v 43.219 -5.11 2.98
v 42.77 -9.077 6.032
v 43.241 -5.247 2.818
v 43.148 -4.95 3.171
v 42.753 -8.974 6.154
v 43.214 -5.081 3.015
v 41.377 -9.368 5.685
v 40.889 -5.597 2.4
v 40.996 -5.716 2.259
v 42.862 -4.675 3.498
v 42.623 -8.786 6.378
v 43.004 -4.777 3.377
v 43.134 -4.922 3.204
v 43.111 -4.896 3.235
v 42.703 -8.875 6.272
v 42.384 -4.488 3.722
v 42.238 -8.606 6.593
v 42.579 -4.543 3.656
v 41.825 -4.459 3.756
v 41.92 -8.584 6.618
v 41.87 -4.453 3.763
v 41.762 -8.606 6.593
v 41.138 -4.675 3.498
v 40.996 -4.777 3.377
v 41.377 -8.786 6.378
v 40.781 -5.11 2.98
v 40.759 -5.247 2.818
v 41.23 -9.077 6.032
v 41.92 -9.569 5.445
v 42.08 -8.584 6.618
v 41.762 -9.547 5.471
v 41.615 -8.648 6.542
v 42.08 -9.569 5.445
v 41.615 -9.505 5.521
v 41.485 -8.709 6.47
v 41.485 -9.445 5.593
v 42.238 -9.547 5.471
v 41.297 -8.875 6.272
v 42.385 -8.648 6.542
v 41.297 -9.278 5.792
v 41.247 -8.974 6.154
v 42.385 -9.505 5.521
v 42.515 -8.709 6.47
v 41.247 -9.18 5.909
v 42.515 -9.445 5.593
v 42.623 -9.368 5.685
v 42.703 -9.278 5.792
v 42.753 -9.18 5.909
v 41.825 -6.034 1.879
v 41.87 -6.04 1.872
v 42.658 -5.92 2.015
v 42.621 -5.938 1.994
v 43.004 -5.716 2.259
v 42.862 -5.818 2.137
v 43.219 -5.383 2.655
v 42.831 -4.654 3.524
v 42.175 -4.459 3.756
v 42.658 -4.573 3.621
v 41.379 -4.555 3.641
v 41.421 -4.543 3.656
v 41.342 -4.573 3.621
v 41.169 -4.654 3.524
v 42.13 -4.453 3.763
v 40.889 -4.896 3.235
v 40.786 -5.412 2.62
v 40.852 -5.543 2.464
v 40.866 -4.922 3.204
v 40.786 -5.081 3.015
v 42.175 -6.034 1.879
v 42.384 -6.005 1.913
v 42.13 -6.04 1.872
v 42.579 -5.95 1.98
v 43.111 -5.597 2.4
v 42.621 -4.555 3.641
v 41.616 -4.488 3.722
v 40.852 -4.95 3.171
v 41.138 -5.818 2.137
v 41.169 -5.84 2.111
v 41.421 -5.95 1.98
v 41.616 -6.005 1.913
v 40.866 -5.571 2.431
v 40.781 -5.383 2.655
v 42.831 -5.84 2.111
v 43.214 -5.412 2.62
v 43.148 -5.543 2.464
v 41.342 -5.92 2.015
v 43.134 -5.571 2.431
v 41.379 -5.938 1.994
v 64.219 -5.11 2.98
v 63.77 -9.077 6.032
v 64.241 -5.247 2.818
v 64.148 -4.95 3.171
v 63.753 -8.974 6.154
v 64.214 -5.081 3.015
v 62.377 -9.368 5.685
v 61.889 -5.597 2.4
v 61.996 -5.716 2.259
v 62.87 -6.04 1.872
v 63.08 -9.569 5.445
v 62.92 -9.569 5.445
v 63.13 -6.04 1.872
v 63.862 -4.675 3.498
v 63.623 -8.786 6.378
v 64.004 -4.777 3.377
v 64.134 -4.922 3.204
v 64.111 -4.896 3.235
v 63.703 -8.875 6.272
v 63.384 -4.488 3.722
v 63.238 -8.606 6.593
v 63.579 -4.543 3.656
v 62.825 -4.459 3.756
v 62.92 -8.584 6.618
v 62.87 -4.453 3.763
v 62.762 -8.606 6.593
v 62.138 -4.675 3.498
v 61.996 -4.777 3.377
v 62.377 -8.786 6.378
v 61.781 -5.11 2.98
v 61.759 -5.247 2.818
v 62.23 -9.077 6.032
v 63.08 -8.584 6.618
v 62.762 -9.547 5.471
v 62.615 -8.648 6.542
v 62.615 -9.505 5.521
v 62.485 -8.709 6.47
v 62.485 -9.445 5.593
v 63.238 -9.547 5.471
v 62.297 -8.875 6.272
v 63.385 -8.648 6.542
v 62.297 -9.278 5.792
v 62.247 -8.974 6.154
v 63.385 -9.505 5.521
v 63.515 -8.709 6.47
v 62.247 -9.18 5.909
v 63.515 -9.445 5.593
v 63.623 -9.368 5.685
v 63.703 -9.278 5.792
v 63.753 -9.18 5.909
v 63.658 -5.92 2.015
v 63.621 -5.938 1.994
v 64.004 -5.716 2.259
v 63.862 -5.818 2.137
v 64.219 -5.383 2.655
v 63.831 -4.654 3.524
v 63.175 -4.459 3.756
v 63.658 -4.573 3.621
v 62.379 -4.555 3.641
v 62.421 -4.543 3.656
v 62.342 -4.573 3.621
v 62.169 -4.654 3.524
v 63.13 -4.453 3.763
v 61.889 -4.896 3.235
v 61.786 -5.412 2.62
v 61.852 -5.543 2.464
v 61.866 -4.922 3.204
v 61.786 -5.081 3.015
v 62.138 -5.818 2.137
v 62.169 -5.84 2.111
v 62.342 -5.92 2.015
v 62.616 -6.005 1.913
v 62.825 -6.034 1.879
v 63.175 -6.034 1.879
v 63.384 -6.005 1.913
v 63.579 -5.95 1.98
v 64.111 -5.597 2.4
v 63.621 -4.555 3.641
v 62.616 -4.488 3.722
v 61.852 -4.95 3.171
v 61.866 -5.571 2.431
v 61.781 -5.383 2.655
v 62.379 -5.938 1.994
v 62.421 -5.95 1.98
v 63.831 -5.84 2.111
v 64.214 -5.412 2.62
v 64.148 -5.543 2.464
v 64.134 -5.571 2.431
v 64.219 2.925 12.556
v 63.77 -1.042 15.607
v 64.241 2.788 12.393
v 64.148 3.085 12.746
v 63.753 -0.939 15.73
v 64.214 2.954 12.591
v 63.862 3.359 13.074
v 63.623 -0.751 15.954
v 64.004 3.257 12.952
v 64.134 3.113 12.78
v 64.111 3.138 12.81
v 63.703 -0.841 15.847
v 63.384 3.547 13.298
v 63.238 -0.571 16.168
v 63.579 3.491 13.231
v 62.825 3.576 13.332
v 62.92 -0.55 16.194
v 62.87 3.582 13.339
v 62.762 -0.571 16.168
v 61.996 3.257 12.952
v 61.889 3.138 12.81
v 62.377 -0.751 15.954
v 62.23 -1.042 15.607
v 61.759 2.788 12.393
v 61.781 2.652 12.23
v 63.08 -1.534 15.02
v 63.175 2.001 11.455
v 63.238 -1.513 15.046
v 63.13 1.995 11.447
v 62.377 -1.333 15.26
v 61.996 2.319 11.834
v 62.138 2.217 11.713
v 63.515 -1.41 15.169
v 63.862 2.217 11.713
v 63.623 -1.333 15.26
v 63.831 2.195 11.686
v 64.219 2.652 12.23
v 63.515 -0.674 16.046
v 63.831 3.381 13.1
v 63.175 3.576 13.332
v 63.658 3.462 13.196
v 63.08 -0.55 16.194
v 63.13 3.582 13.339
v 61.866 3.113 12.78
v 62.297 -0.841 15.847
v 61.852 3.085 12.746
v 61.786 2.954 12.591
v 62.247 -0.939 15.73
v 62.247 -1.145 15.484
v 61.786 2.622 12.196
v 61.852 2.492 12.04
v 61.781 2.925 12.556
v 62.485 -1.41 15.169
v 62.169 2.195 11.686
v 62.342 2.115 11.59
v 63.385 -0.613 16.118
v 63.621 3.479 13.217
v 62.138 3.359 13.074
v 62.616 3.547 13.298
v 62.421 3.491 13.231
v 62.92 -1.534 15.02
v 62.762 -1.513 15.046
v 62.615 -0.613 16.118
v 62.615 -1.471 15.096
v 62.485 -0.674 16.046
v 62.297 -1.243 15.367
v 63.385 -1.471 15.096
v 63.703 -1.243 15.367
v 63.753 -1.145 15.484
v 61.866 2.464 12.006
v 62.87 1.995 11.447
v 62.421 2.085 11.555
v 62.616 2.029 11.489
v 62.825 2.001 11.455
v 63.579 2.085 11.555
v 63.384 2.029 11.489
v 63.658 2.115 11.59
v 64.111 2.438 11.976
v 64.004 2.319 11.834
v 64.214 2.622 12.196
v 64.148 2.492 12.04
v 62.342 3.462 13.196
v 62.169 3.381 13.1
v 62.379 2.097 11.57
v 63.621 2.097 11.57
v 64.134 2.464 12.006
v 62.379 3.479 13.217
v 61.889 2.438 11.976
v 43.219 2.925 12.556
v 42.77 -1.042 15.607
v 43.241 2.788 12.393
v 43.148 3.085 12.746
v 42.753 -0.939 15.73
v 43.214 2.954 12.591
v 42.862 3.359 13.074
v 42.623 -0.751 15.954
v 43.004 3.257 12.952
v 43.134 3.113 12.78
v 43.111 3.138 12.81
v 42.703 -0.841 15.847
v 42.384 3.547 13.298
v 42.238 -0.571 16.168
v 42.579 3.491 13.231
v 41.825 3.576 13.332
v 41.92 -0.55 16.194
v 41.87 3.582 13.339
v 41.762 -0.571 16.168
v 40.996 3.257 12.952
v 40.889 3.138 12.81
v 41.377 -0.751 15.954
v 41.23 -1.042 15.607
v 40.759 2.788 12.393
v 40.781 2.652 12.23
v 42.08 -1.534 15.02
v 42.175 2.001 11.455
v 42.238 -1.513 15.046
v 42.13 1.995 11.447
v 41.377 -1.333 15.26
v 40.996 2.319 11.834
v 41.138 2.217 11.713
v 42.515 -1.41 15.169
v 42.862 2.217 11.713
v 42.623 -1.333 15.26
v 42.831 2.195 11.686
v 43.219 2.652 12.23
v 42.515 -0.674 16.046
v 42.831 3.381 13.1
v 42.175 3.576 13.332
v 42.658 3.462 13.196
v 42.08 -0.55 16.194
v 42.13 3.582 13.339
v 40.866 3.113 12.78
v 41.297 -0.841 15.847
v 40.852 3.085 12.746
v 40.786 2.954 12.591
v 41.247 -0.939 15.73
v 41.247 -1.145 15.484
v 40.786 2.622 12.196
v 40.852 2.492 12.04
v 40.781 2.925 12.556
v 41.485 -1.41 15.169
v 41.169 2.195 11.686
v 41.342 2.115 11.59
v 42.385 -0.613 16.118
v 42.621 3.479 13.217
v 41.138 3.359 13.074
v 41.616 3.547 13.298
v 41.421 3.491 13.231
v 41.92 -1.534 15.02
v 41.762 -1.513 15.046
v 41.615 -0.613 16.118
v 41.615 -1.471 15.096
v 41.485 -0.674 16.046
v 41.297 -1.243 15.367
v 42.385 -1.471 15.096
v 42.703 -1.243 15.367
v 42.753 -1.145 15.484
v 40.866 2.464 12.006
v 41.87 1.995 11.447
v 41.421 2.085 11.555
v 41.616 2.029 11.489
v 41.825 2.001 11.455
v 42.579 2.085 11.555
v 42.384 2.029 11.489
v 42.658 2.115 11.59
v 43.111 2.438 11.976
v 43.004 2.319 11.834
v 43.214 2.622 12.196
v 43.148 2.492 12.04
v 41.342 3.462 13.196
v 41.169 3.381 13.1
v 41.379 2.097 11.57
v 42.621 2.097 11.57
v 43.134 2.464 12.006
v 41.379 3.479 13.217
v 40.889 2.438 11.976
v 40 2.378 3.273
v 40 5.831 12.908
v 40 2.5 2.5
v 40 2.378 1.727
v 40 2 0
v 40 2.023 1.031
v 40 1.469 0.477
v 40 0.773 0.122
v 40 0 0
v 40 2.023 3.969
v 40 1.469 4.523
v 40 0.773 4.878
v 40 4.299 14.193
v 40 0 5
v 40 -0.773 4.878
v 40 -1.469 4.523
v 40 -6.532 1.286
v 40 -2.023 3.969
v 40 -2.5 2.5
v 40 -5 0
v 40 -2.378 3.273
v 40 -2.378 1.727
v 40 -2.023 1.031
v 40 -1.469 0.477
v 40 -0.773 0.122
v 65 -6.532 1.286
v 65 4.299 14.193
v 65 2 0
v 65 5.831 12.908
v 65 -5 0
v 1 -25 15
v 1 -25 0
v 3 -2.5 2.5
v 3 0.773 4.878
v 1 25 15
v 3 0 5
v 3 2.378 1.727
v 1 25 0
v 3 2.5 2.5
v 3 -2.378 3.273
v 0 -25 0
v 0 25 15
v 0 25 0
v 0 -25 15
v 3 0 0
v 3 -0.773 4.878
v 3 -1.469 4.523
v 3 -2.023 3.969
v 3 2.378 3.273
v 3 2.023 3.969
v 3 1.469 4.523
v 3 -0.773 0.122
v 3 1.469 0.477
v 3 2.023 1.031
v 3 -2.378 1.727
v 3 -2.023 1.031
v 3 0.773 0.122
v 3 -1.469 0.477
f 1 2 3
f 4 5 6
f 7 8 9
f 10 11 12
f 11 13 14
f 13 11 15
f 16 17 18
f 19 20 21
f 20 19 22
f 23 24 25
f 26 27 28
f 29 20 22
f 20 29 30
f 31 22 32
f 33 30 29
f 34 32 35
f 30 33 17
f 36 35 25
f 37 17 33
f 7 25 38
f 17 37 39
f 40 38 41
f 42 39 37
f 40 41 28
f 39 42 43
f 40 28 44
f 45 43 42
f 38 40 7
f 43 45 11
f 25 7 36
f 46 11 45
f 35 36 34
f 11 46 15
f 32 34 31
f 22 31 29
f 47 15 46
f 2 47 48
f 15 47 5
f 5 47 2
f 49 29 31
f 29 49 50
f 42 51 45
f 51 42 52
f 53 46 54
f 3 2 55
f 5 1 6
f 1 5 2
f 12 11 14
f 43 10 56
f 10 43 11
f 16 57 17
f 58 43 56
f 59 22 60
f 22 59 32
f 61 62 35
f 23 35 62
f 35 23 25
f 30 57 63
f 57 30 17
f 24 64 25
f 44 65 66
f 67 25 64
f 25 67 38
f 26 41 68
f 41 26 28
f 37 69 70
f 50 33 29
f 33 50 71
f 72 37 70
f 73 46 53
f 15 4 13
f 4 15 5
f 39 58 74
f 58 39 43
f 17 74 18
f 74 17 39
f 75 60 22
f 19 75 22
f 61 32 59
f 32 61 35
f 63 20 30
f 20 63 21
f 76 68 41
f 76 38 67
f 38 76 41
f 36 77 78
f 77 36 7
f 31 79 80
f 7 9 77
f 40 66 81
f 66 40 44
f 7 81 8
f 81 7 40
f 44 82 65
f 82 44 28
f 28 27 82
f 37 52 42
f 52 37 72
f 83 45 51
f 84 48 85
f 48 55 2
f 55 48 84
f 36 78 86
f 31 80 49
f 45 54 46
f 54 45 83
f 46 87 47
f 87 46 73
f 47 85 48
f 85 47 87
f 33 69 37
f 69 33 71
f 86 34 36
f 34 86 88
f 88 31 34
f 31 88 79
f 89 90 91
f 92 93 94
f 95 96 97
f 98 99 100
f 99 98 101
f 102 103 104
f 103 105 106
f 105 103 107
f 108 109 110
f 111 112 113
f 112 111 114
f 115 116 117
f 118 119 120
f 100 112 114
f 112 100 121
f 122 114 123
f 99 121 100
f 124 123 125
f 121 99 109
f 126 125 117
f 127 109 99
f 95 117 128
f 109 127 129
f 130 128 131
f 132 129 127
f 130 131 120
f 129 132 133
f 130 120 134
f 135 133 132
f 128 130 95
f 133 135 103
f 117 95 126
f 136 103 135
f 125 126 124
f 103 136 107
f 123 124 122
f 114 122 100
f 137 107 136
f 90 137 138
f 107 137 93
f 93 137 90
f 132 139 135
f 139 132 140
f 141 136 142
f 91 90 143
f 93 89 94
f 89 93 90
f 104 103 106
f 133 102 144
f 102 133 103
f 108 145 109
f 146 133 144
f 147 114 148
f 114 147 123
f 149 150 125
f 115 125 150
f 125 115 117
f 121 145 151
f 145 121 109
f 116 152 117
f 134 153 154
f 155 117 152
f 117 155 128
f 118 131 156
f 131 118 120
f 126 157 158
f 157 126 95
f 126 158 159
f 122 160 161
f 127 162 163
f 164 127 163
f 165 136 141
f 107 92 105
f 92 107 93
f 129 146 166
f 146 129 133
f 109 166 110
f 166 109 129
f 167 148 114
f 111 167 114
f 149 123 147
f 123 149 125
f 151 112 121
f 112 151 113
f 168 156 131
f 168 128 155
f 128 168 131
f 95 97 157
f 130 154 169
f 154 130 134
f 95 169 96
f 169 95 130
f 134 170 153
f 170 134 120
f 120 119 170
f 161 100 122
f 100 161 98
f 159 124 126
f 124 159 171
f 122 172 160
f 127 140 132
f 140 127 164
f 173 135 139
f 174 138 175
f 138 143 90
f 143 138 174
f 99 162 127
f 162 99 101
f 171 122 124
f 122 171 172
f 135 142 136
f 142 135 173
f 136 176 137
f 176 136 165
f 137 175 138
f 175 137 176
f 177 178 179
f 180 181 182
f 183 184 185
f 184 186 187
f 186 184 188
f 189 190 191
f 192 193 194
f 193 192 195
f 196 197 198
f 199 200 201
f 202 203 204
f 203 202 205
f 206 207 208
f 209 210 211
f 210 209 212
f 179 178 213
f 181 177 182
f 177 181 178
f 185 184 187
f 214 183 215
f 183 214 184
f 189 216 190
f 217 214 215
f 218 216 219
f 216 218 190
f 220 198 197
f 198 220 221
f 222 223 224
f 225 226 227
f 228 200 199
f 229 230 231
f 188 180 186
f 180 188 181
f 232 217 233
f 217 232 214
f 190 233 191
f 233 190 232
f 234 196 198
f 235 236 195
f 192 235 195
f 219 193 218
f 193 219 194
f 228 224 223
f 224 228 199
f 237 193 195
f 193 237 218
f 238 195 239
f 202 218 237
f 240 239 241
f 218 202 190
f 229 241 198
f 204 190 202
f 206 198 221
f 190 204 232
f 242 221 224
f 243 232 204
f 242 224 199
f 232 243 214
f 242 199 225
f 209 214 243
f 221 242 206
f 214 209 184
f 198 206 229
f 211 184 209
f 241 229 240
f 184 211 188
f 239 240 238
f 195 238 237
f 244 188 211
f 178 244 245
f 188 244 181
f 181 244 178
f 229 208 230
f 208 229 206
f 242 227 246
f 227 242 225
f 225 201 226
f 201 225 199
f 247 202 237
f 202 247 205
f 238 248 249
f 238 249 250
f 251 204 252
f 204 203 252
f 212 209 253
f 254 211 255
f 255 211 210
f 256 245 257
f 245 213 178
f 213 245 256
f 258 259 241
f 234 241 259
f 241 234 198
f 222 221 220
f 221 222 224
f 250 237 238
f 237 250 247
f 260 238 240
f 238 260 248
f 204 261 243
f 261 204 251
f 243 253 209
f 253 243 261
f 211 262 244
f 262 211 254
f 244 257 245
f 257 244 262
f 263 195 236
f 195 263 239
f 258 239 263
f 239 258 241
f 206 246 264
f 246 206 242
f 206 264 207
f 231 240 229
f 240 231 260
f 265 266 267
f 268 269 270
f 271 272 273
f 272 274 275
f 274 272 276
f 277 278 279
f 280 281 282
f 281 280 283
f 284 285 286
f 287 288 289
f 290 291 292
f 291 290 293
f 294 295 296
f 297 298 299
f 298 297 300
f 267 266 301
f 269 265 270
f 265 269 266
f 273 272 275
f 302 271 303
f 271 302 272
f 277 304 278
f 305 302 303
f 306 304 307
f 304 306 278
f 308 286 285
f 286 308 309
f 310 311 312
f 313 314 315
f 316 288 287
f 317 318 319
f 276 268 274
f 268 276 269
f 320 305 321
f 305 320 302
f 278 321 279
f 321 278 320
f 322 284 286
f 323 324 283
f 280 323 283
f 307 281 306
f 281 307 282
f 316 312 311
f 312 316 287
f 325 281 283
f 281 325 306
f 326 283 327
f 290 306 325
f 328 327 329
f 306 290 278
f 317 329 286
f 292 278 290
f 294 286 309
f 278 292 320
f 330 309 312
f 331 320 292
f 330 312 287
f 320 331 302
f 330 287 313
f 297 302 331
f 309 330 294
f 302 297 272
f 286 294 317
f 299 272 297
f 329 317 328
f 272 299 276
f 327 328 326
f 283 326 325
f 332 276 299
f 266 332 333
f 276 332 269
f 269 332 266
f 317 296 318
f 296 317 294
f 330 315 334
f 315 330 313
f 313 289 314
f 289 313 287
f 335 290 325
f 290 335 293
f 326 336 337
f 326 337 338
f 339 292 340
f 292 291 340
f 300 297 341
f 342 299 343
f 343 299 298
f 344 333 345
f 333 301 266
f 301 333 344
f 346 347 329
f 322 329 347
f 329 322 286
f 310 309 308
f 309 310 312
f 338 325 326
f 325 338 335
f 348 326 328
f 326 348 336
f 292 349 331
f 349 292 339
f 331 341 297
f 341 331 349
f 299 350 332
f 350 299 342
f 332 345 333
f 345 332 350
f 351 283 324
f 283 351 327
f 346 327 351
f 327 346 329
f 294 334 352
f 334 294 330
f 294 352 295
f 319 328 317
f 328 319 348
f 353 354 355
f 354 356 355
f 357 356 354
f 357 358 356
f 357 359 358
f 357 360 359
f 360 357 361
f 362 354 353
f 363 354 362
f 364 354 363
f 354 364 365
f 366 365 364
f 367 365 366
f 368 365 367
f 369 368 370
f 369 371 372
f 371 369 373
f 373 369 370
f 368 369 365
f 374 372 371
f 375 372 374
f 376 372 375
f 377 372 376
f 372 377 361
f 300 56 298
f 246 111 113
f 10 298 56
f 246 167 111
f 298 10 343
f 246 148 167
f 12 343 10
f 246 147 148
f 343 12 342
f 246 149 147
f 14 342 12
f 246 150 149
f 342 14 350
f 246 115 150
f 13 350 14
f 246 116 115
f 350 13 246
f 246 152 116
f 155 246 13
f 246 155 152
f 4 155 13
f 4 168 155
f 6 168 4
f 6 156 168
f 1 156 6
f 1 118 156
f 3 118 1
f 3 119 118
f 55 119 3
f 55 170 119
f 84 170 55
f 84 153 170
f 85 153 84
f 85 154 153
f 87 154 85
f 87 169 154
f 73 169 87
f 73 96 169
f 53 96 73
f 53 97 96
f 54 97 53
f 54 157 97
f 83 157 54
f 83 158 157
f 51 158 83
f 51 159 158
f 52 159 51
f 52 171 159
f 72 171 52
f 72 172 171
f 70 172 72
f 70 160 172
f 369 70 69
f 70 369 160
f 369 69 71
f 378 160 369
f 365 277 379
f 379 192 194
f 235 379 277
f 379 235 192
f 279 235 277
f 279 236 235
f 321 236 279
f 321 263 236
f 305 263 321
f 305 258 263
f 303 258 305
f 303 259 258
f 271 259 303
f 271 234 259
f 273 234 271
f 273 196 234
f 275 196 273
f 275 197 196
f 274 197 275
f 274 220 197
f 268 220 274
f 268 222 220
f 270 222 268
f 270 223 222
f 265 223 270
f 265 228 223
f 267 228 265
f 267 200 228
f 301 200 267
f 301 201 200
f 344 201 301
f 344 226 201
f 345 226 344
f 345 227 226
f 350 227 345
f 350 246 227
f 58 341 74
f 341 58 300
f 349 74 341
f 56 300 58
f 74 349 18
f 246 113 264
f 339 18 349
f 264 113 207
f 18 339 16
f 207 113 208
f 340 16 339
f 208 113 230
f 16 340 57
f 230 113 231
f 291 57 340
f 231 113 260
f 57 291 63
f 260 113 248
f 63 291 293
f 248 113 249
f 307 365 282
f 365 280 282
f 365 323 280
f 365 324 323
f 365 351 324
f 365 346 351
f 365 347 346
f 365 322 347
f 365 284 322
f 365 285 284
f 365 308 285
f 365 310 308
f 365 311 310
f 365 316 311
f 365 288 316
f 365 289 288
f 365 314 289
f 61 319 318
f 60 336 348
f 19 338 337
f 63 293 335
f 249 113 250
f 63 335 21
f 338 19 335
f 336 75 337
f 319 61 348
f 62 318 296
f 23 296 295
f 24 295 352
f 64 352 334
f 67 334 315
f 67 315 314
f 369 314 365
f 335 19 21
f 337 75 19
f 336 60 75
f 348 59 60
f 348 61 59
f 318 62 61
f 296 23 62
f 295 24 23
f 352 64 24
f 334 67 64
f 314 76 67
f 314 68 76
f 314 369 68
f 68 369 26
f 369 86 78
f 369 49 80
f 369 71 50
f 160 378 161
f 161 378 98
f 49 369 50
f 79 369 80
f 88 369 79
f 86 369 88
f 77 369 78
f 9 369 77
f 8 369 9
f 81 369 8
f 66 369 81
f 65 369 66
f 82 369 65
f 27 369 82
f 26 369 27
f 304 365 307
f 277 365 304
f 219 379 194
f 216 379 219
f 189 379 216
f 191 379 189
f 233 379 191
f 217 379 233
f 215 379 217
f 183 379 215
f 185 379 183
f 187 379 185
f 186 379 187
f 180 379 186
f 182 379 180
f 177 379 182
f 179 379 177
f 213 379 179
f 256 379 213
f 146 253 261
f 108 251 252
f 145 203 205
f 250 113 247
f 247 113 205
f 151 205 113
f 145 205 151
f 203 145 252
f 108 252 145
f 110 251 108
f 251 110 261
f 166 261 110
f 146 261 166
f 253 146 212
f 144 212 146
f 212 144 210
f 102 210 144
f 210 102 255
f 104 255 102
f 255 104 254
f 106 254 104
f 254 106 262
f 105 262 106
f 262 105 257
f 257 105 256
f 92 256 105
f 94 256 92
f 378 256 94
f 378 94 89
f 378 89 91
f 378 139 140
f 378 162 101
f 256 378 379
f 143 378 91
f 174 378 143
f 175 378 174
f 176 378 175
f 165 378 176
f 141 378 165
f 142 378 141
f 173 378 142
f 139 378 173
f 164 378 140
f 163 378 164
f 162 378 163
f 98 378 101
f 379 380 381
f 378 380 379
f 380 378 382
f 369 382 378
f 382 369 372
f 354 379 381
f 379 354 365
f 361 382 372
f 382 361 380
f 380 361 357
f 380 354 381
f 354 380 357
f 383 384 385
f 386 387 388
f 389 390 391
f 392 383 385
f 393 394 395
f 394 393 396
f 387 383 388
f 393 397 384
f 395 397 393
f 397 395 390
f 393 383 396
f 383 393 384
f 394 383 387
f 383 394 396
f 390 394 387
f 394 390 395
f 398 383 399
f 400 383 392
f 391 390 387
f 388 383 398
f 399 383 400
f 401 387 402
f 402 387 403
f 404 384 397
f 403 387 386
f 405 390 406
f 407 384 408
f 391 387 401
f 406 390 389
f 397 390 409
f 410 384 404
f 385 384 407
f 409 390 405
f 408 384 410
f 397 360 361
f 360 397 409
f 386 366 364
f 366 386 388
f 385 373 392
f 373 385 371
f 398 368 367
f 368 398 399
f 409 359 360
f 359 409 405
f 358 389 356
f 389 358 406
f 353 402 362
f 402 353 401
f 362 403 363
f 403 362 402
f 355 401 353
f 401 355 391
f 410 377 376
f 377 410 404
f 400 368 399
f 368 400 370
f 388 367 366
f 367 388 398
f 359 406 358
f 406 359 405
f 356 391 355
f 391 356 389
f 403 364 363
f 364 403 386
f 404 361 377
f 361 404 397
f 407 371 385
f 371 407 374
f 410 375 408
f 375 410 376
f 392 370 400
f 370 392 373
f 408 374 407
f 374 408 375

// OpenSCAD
$fn=20;
/*
  Adhesive Raspberry Pi Camera v2.1 mount (OpenSCAD)
  Author: Brian Khuu (2019)
  
  This is a pressfit design. No support required. Just print and push the camera PCB to the mounting holes.
  
  Apply adhesive strip
  
  Default value assumes: Command Strip dimentions is typically 50mmx15mm

*/

/* [Camera]  */

// Camera Tilt Angle
picam_tilt_angle = 50;

// Offset Length
picam_mount_offset = 40;

/* [Mounting Strip Base]  */

// length of mounting strip base
sx = 50 ; 

// widith of mounting strip base
sy = 15 ;

// height of mounting strip base
sh = 2  ;

module rpi_camera_model() {
  // ==============================================
  // Model of Raspberry Pi Camera v2.1
  // J.Beale 14-May-2016
  // ==============================================
  
  xs = 25.0;  // width of PCB
  ys = 23.85;  // height of PCB
  zs = 0.95;  // thickness of bare PCB, not including soldermask
  smt = 0.05;  // soldermask thickness (on each side)

  ID1 = 2.20; // ID of mounting through-holes
  OD1 = 4.7;  // silkscreen clearance around hole

  mhxc = 21.0;  // X center-to-center separation of mounting holes
  mhyc = 12.5; // Y center-to-center separation of mtng. holes
  mhox = 2.0;  // X mounting hole corner offset
  mhoy = 2.0;  // Y mounting hole corner offset
  hh = zs*2; // depth/height of mounting hole (subtractive cylinder)

  smx = 8.45;  // camera sensor module, base part
  smy = 8.45;
  smz = 2.3;
  smbod = 7.25;  // OD of lens holder barrel
  smbz = 1.7; // z-height of lens holder barrel
  smcod = 5.6;  // OD of lens cell 
  smcz = 0.6;  // protrusion of cell above holder barrel
  smcid = 1.55;  // optical aperture: opening for lens

  smfx = 8.9; // flex connector width
  smfy = 4.5; // flex connector 
  smfz = 1.52; // flex connector
  smfox = 9.45; // flex edge X offset
  smfoy = 2.6; // flex edge Y offset
  smfcx = 7.2; // flex cable width

  fcy = 5.8; // 15-way flex connector
  fcx = 21.0; // 15-way flex connector
  fcz = 3.77-1.15; // 15-way flex connector height  
  fcyoff = 0.3; // connector offset from PCB edge

  ffx = 16.05;  // 15-way flex cable width
  ffy = 30;  // length of flex cable stub
  ffz = 0.38;  // thickness of ff cable at stiffener
  ffoz = 1.1; // offset of ff cable below PCB

  KOx = 22.15; // keepout width- full
  KOxa = 15.1; // keepout width- inner block
  KOz = 1.35; // bottom side keepout z-height
  KOyo = 1.15; // keepout edge offset

  fn=40;  // facets on cylinder
  eps=0.03; // small number

  module pcb() {
  difference() {
   union() {
       translate([0,0,0]) color("green") 
          cube([xs,ys,smt]); // soldermask (bottom)
       translate([0,0,smt]) color("yellow") 
          cube([xs,ys,zs]); // natural PCB color
       translate([0,0,zs]) color("green") 
          cube([xs,ys,smt]); // soldermask (top)
   }
   translate([mhox,mhoy,zs-(smt+eps)]) {  // mask clearance: top
       cylinder(d=OD1,h=zs,$fn=fn);
       translate([mhxc,0,0]) cylinder(d=OD1,h=zs,$fn=fn);
       translate([mhxc,mhyc,0]) cylinder(d=OD1,h=zs,$fn=fn);
       translate([0,mhyc,0]) cylinder(d=OD1,h=zs,$fn=fn);
   }
   translate([mhox,mhoy,-eps]) {  // mask clearance: bottom
       cylinder(d=OD1,h=smt,$fn=fn);
       translate([mhxc,0,0]) cylinder(d=OD1,h=smt,$fn=fn);
       translate([mhxc,mhyc,0]) cylinder(d=OD1,h=smt,$fn=fn);
       translate([0,mhyc,0]) cylinder(d=OD1,h=smt,$fn=fn);
   }
   translate([mhox,mhoy,-zs*5]) {  // through holes
    cylinder(d=ID1,h=zs*10,$fn=fn);     
    translate([mhxc,0,0])  cylinder(d=ID1,h=zs*10,$fn=fn);
    translate([mhxc,mhyc,0])  cylinder(d=ID1,h=zs*10,$fn=fn);
    translate([0,mhyc,0])  cylinder(d=ID1,h=zs*10,$fn=fn);
    }
   }
  }
  
  module sensor() { // Camera sensor module
   color([.25,.25,.25]) translate([-smx/2, -smy/2, 0]) cube([smx,smy,smz]);
   color([.3,.3,.3]) cylinder(d=smbod, h=smbz + smz, $fn=fn);
   difference() {
    color([.2,.2,.2]) cylinder(d=smcod, h=smbz + smz + smcz, $fn=fn);
    translate([0,0,smcz]) cylinder(d=smcid, h=smbz + smz + smcz, $fn=fn);
   }
  }

  module flex() { // micro-flex attached to sensor
   color([0.2,0.20,0.18]) cube([smfx,smfy,smfz]); // u-flex connector top
   translate([0,smfy,0]) color([0.33,0.33,0.23]) cube([smfcx,smfy,smfz-.1]);
  }

  module fcon() {  // micro-flex connector to PCB
      color([0.6,0.20,0.18]) cube([fcx,fcy,fcz]);
  }

  module ff15() {  // 15-conductor flat flex cable
      color([.7,.7,.7]) cube([ffx,ffy,ffz]);
  }
  
  translate([xs/2 ,mhyc+mhoy,zs]) sensor();
  translate([smfox,smfoy,zs]) flex(); // micro-flex on sensor
  pcb();
}

module cam_holder(thickness, rotate, hull_base)
{
  fn=30;
  pressfit_h=7;
  
  // Simulated Camera
  %rotate([rotate,0,0])translate([0 ,0,thickness+2]) rpi_camera_model();
 
  xs = 25.0;  // width of PCB
  ys = 23.85-7;  // height of PCB
  zs = 0.95;  // thickness of bare PCB, not including soldermask

  mhxc = 21.0;  // X center-to-center separation of mounting holes
  mhyc = 12.5; // Y center-to-center separation of mtng. holes
  mhox = 2.0;  // X mounting hole corner offset
  mhoy = 2.0;  // Y mounting hole corner offset
  ID1 = 2.20; // ID of mounting through-holes
  
  if(hull_base>0)
  hull()
  {
    rotate([rotate,0,0])
      cube([xs,ys,0.1]);
    cube([xs,hull_base,0.1]);
  }

  rotate([rotate,0,0])
  {
   cube([xs,ys,thickness]);
   translate([mhox,mhoy,0]) 
   {  // through holes
      translate([0,0,0])        cylinder(d1=ID1*1.3,d2=ID1*0.7,h=pressfit_h,$fn=fn);     
      translate([mhxc,0,0])     cylinder(d1=ID1*1.3,d2=ID1*0.7,h=pressfit_h,$fn=fn);
      translate([mhxc,mhyc,0])  cylinder(d1=ID1*1.3,d2=ID1*0.7,h=pressfit_h,$fn=fn);
      translate([0,mhyc,0])     cylinder(d1=ID1*1.3,d2=ID1*0.7,h=pressfit_h,$fn=fn);
   }
 }
}


union()
{
  hull()
  {
    translate([0,-sx/2,0])
      cube([1,sx,sy]);
    translate([0,0,5/2])
      rotate([0,90,0])
      cylinder(r=5/2,h=3);
  }

  translate([0,0,5/2])
    rotate([0,90,0])
      cylinder(r=5/2,h=picam_mount_offset);
  
  translate([picam_mount_offset,-5,0])
    cam_holder(2, picam_tilt_angle, 7);
}
